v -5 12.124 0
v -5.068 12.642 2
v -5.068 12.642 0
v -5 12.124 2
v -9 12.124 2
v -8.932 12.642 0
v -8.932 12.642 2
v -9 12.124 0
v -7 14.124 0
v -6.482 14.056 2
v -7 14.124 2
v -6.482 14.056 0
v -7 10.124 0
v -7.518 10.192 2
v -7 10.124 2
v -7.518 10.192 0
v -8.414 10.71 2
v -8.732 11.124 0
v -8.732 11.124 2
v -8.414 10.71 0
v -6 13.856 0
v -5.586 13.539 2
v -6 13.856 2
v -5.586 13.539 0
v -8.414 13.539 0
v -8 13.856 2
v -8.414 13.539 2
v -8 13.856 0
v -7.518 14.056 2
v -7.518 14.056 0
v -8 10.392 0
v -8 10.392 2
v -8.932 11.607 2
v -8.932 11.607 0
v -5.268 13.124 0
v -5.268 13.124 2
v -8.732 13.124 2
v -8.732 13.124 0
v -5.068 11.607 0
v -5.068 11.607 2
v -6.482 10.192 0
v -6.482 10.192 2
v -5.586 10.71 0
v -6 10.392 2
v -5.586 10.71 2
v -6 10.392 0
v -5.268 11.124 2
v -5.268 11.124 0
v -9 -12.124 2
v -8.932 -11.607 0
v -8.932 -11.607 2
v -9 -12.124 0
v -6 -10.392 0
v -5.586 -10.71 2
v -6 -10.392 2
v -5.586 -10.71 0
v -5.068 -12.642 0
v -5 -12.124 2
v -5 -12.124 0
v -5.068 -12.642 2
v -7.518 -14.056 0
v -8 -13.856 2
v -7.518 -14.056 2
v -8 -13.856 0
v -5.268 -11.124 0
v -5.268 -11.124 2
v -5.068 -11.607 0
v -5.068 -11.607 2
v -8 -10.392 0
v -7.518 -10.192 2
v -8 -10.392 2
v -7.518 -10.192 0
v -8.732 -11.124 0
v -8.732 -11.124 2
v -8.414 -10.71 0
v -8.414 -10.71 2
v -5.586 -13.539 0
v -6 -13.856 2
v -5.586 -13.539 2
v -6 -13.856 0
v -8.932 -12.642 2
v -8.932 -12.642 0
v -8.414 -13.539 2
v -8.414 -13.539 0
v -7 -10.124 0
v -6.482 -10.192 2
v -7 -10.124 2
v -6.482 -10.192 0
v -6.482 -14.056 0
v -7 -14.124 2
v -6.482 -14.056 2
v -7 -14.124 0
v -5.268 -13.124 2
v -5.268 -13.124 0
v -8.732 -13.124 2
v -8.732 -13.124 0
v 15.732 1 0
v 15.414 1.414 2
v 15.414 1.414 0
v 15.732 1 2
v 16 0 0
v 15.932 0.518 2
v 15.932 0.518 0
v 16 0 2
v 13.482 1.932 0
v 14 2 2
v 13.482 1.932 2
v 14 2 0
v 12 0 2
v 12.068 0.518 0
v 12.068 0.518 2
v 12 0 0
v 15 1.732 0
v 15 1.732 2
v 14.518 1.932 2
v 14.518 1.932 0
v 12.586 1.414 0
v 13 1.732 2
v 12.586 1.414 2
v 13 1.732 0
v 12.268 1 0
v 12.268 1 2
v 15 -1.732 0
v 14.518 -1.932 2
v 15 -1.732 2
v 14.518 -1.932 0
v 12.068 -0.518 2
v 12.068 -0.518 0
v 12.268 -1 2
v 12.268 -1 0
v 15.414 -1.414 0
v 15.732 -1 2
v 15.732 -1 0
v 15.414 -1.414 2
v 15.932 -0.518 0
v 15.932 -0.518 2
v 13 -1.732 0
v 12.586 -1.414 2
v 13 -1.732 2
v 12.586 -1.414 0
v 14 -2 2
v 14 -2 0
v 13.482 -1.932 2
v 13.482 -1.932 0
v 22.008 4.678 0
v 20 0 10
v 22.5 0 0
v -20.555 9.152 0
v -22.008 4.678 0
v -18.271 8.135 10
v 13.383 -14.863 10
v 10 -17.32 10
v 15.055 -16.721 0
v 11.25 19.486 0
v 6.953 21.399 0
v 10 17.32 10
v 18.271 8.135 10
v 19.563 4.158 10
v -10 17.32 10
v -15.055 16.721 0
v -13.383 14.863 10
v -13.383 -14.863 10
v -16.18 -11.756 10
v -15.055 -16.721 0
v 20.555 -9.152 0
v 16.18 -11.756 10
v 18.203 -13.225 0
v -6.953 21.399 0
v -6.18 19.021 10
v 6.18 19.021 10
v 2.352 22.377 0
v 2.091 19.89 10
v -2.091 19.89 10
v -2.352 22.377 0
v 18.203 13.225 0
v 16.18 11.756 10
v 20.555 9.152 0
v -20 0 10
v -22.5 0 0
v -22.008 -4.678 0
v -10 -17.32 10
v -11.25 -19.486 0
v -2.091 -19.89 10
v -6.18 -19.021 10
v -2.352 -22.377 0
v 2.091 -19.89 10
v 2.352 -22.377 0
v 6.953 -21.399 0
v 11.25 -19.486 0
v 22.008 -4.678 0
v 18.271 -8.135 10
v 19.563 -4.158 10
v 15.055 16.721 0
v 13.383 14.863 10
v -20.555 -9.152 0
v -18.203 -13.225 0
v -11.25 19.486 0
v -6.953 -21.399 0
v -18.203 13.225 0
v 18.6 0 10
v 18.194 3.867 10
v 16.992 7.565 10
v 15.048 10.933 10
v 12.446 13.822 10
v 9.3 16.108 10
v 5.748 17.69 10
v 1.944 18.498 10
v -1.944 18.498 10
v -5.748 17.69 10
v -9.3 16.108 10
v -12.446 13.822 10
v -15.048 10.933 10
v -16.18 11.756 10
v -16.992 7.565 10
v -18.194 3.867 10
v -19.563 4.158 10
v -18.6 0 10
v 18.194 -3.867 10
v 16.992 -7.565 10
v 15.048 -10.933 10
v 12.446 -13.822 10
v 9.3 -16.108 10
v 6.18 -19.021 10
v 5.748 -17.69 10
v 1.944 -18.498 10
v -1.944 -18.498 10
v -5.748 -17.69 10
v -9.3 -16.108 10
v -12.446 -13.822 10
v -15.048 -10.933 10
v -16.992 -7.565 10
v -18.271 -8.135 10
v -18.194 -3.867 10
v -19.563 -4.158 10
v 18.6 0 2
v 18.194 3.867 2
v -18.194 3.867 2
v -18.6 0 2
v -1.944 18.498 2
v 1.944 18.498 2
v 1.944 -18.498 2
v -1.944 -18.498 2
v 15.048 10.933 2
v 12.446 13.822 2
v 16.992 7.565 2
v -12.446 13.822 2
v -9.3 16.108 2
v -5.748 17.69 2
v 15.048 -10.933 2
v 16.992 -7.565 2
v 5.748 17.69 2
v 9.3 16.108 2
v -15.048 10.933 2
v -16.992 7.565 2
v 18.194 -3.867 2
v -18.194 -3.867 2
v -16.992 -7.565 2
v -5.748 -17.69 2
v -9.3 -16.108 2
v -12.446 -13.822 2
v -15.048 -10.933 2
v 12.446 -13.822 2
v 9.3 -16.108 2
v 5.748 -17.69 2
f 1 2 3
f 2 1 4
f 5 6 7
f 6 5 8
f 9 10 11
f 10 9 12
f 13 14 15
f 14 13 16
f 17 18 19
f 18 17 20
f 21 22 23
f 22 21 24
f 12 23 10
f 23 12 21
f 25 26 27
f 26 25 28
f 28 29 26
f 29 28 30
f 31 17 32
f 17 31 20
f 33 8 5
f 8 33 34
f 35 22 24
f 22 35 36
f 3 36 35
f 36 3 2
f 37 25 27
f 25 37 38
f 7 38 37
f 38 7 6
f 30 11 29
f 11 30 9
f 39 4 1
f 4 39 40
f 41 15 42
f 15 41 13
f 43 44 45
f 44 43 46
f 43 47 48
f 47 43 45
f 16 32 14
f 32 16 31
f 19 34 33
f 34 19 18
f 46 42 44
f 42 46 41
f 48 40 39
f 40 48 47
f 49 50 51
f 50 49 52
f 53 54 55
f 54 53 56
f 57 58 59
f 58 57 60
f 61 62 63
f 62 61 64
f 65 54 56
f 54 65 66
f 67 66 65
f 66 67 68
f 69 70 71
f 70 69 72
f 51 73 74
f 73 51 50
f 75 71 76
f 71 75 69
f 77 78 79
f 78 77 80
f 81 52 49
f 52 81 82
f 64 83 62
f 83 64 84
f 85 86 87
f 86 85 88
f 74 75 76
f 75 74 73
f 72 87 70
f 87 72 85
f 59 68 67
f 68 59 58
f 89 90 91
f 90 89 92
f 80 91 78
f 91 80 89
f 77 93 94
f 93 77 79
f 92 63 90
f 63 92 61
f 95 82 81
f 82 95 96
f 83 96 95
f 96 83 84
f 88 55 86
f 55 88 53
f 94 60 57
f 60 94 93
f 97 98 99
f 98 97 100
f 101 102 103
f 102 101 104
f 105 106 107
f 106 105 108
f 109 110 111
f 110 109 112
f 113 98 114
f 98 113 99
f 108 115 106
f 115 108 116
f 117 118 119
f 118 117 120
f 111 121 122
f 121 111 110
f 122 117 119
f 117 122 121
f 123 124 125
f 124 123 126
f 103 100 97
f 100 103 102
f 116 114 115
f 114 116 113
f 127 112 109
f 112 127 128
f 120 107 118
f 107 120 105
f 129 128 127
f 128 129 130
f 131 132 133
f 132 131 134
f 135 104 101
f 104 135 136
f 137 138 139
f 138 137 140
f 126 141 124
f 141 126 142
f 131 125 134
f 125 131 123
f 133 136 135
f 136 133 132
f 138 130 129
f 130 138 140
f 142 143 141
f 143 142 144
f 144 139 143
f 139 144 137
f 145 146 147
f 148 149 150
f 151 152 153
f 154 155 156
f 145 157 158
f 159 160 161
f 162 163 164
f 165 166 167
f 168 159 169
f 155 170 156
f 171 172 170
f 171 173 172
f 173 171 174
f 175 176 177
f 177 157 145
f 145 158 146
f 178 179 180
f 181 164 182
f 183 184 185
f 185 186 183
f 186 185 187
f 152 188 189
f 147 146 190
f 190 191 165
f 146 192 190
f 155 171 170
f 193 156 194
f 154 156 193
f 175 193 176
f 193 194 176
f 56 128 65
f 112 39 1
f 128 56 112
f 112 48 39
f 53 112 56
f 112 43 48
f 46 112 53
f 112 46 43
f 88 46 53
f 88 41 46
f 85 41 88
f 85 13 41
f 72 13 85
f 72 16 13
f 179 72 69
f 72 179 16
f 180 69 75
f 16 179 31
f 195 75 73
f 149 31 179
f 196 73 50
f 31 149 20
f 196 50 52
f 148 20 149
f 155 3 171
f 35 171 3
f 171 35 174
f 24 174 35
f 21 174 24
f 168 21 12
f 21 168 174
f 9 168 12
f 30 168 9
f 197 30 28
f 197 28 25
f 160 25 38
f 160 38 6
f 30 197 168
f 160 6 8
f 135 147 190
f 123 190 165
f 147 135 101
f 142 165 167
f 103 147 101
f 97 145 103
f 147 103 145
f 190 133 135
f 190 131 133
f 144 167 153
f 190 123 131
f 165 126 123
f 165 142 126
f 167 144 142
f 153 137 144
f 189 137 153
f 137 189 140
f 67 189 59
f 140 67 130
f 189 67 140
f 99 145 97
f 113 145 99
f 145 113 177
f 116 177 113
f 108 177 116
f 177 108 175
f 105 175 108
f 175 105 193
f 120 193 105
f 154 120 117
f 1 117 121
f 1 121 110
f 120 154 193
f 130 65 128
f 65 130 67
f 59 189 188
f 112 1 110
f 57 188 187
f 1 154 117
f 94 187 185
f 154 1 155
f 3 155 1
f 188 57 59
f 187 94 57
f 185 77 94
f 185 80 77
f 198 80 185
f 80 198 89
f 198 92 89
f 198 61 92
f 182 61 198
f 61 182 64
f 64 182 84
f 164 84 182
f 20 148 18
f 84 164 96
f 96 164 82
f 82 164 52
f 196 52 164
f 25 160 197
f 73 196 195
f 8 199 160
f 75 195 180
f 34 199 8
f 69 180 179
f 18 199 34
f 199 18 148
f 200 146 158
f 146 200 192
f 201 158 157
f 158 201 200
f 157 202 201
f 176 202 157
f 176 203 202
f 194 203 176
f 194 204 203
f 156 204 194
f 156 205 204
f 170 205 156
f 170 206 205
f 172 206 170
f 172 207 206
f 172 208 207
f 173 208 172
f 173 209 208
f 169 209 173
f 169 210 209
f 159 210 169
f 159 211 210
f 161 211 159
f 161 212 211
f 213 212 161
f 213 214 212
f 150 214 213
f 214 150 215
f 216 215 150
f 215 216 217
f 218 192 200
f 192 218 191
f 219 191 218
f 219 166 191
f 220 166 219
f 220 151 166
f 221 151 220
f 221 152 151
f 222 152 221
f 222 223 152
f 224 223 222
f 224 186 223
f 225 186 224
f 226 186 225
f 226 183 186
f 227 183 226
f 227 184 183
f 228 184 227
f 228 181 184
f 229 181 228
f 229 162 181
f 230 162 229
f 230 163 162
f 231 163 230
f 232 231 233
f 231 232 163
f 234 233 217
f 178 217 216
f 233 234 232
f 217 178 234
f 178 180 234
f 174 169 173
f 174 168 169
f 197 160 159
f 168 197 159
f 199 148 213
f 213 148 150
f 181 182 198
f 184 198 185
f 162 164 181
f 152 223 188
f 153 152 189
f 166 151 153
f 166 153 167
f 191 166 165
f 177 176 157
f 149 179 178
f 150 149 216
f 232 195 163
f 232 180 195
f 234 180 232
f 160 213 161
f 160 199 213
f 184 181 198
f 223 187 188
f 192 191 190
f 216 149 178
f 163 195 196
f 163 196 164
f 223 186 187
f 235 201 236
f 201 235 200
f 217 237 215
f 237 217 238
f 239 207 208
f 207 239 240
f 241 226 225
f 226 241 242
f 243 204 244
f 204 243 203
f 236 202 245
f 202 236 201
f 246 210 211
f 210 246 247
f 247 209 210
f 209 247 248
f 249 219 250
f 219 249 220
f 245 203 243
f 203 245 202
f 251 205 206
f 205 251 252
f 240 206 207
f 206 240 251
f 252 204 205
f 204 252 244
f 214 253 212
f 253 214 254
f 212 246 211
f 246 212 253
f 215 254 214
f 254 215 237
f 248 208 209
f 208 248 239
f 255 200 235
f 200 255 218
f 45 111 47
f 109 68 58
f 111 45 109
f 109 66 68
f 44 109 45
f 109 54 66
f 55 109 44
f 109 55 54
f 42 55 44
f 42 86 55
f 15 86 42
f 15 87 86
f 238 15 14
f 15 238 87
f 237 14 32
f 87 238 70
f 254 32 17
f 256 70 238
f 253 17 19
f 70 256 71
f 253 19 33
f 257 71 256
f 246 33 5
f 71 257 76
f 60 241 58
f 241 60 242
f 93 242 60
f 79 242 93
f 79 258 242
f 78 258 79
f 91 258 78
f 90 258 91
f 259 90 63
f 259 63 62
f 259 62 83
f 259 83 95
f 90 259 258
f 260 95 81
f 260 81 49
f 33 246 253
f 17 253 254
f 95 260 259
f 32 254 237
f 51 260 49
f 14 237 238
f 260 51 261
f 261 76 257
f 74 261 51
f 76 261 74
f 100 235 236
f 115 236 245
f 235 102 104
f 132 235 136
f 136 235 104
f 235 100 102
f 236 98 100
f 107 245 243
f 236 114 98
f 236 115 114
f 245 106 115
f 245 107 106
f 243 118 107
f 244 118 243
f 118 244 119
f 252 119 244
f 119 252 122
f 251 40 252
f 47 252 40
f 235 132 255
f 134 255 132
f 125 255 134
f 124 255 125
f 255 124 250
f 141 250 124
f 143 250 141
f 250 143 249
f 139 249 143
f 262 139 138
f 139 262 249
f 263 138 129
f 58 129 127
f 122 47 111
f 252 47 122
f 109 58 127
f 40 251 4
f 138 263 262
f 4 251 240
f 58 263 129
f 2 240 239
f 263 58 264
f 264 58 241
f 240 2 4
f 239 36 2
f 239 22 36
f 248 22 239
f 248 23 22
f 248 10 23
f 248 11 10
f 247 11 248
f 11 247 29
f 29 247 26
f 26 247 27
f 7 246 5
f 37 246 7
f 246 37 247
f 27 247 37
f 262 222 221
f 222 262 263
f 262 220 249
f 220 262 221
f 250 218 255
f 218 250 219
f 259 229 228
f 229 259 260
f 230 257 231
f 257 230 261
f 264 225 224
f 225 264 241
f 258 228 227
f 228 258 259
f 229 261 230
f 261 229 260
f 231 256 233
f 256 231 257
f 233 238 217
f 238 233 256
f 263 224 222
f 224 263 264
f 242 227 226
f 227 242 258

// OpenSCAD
difference(){
    union(){
        translate([0,0,0]) cylinder(h=10, d1=45, d2=40, center=false);
    }
    translate([0,0,2]) cylinder(h=13, d=37.2, center=false);
    pathRadius=28/2;
    num=3;
    for (i=[1:num])  {
        translate([pathRadius*cos(i*(360/num)),pathRadius*sin(i*(360/num)),-0.1]) cylinder(h=13, d=4, center=false, $fn=24);
    }
}
